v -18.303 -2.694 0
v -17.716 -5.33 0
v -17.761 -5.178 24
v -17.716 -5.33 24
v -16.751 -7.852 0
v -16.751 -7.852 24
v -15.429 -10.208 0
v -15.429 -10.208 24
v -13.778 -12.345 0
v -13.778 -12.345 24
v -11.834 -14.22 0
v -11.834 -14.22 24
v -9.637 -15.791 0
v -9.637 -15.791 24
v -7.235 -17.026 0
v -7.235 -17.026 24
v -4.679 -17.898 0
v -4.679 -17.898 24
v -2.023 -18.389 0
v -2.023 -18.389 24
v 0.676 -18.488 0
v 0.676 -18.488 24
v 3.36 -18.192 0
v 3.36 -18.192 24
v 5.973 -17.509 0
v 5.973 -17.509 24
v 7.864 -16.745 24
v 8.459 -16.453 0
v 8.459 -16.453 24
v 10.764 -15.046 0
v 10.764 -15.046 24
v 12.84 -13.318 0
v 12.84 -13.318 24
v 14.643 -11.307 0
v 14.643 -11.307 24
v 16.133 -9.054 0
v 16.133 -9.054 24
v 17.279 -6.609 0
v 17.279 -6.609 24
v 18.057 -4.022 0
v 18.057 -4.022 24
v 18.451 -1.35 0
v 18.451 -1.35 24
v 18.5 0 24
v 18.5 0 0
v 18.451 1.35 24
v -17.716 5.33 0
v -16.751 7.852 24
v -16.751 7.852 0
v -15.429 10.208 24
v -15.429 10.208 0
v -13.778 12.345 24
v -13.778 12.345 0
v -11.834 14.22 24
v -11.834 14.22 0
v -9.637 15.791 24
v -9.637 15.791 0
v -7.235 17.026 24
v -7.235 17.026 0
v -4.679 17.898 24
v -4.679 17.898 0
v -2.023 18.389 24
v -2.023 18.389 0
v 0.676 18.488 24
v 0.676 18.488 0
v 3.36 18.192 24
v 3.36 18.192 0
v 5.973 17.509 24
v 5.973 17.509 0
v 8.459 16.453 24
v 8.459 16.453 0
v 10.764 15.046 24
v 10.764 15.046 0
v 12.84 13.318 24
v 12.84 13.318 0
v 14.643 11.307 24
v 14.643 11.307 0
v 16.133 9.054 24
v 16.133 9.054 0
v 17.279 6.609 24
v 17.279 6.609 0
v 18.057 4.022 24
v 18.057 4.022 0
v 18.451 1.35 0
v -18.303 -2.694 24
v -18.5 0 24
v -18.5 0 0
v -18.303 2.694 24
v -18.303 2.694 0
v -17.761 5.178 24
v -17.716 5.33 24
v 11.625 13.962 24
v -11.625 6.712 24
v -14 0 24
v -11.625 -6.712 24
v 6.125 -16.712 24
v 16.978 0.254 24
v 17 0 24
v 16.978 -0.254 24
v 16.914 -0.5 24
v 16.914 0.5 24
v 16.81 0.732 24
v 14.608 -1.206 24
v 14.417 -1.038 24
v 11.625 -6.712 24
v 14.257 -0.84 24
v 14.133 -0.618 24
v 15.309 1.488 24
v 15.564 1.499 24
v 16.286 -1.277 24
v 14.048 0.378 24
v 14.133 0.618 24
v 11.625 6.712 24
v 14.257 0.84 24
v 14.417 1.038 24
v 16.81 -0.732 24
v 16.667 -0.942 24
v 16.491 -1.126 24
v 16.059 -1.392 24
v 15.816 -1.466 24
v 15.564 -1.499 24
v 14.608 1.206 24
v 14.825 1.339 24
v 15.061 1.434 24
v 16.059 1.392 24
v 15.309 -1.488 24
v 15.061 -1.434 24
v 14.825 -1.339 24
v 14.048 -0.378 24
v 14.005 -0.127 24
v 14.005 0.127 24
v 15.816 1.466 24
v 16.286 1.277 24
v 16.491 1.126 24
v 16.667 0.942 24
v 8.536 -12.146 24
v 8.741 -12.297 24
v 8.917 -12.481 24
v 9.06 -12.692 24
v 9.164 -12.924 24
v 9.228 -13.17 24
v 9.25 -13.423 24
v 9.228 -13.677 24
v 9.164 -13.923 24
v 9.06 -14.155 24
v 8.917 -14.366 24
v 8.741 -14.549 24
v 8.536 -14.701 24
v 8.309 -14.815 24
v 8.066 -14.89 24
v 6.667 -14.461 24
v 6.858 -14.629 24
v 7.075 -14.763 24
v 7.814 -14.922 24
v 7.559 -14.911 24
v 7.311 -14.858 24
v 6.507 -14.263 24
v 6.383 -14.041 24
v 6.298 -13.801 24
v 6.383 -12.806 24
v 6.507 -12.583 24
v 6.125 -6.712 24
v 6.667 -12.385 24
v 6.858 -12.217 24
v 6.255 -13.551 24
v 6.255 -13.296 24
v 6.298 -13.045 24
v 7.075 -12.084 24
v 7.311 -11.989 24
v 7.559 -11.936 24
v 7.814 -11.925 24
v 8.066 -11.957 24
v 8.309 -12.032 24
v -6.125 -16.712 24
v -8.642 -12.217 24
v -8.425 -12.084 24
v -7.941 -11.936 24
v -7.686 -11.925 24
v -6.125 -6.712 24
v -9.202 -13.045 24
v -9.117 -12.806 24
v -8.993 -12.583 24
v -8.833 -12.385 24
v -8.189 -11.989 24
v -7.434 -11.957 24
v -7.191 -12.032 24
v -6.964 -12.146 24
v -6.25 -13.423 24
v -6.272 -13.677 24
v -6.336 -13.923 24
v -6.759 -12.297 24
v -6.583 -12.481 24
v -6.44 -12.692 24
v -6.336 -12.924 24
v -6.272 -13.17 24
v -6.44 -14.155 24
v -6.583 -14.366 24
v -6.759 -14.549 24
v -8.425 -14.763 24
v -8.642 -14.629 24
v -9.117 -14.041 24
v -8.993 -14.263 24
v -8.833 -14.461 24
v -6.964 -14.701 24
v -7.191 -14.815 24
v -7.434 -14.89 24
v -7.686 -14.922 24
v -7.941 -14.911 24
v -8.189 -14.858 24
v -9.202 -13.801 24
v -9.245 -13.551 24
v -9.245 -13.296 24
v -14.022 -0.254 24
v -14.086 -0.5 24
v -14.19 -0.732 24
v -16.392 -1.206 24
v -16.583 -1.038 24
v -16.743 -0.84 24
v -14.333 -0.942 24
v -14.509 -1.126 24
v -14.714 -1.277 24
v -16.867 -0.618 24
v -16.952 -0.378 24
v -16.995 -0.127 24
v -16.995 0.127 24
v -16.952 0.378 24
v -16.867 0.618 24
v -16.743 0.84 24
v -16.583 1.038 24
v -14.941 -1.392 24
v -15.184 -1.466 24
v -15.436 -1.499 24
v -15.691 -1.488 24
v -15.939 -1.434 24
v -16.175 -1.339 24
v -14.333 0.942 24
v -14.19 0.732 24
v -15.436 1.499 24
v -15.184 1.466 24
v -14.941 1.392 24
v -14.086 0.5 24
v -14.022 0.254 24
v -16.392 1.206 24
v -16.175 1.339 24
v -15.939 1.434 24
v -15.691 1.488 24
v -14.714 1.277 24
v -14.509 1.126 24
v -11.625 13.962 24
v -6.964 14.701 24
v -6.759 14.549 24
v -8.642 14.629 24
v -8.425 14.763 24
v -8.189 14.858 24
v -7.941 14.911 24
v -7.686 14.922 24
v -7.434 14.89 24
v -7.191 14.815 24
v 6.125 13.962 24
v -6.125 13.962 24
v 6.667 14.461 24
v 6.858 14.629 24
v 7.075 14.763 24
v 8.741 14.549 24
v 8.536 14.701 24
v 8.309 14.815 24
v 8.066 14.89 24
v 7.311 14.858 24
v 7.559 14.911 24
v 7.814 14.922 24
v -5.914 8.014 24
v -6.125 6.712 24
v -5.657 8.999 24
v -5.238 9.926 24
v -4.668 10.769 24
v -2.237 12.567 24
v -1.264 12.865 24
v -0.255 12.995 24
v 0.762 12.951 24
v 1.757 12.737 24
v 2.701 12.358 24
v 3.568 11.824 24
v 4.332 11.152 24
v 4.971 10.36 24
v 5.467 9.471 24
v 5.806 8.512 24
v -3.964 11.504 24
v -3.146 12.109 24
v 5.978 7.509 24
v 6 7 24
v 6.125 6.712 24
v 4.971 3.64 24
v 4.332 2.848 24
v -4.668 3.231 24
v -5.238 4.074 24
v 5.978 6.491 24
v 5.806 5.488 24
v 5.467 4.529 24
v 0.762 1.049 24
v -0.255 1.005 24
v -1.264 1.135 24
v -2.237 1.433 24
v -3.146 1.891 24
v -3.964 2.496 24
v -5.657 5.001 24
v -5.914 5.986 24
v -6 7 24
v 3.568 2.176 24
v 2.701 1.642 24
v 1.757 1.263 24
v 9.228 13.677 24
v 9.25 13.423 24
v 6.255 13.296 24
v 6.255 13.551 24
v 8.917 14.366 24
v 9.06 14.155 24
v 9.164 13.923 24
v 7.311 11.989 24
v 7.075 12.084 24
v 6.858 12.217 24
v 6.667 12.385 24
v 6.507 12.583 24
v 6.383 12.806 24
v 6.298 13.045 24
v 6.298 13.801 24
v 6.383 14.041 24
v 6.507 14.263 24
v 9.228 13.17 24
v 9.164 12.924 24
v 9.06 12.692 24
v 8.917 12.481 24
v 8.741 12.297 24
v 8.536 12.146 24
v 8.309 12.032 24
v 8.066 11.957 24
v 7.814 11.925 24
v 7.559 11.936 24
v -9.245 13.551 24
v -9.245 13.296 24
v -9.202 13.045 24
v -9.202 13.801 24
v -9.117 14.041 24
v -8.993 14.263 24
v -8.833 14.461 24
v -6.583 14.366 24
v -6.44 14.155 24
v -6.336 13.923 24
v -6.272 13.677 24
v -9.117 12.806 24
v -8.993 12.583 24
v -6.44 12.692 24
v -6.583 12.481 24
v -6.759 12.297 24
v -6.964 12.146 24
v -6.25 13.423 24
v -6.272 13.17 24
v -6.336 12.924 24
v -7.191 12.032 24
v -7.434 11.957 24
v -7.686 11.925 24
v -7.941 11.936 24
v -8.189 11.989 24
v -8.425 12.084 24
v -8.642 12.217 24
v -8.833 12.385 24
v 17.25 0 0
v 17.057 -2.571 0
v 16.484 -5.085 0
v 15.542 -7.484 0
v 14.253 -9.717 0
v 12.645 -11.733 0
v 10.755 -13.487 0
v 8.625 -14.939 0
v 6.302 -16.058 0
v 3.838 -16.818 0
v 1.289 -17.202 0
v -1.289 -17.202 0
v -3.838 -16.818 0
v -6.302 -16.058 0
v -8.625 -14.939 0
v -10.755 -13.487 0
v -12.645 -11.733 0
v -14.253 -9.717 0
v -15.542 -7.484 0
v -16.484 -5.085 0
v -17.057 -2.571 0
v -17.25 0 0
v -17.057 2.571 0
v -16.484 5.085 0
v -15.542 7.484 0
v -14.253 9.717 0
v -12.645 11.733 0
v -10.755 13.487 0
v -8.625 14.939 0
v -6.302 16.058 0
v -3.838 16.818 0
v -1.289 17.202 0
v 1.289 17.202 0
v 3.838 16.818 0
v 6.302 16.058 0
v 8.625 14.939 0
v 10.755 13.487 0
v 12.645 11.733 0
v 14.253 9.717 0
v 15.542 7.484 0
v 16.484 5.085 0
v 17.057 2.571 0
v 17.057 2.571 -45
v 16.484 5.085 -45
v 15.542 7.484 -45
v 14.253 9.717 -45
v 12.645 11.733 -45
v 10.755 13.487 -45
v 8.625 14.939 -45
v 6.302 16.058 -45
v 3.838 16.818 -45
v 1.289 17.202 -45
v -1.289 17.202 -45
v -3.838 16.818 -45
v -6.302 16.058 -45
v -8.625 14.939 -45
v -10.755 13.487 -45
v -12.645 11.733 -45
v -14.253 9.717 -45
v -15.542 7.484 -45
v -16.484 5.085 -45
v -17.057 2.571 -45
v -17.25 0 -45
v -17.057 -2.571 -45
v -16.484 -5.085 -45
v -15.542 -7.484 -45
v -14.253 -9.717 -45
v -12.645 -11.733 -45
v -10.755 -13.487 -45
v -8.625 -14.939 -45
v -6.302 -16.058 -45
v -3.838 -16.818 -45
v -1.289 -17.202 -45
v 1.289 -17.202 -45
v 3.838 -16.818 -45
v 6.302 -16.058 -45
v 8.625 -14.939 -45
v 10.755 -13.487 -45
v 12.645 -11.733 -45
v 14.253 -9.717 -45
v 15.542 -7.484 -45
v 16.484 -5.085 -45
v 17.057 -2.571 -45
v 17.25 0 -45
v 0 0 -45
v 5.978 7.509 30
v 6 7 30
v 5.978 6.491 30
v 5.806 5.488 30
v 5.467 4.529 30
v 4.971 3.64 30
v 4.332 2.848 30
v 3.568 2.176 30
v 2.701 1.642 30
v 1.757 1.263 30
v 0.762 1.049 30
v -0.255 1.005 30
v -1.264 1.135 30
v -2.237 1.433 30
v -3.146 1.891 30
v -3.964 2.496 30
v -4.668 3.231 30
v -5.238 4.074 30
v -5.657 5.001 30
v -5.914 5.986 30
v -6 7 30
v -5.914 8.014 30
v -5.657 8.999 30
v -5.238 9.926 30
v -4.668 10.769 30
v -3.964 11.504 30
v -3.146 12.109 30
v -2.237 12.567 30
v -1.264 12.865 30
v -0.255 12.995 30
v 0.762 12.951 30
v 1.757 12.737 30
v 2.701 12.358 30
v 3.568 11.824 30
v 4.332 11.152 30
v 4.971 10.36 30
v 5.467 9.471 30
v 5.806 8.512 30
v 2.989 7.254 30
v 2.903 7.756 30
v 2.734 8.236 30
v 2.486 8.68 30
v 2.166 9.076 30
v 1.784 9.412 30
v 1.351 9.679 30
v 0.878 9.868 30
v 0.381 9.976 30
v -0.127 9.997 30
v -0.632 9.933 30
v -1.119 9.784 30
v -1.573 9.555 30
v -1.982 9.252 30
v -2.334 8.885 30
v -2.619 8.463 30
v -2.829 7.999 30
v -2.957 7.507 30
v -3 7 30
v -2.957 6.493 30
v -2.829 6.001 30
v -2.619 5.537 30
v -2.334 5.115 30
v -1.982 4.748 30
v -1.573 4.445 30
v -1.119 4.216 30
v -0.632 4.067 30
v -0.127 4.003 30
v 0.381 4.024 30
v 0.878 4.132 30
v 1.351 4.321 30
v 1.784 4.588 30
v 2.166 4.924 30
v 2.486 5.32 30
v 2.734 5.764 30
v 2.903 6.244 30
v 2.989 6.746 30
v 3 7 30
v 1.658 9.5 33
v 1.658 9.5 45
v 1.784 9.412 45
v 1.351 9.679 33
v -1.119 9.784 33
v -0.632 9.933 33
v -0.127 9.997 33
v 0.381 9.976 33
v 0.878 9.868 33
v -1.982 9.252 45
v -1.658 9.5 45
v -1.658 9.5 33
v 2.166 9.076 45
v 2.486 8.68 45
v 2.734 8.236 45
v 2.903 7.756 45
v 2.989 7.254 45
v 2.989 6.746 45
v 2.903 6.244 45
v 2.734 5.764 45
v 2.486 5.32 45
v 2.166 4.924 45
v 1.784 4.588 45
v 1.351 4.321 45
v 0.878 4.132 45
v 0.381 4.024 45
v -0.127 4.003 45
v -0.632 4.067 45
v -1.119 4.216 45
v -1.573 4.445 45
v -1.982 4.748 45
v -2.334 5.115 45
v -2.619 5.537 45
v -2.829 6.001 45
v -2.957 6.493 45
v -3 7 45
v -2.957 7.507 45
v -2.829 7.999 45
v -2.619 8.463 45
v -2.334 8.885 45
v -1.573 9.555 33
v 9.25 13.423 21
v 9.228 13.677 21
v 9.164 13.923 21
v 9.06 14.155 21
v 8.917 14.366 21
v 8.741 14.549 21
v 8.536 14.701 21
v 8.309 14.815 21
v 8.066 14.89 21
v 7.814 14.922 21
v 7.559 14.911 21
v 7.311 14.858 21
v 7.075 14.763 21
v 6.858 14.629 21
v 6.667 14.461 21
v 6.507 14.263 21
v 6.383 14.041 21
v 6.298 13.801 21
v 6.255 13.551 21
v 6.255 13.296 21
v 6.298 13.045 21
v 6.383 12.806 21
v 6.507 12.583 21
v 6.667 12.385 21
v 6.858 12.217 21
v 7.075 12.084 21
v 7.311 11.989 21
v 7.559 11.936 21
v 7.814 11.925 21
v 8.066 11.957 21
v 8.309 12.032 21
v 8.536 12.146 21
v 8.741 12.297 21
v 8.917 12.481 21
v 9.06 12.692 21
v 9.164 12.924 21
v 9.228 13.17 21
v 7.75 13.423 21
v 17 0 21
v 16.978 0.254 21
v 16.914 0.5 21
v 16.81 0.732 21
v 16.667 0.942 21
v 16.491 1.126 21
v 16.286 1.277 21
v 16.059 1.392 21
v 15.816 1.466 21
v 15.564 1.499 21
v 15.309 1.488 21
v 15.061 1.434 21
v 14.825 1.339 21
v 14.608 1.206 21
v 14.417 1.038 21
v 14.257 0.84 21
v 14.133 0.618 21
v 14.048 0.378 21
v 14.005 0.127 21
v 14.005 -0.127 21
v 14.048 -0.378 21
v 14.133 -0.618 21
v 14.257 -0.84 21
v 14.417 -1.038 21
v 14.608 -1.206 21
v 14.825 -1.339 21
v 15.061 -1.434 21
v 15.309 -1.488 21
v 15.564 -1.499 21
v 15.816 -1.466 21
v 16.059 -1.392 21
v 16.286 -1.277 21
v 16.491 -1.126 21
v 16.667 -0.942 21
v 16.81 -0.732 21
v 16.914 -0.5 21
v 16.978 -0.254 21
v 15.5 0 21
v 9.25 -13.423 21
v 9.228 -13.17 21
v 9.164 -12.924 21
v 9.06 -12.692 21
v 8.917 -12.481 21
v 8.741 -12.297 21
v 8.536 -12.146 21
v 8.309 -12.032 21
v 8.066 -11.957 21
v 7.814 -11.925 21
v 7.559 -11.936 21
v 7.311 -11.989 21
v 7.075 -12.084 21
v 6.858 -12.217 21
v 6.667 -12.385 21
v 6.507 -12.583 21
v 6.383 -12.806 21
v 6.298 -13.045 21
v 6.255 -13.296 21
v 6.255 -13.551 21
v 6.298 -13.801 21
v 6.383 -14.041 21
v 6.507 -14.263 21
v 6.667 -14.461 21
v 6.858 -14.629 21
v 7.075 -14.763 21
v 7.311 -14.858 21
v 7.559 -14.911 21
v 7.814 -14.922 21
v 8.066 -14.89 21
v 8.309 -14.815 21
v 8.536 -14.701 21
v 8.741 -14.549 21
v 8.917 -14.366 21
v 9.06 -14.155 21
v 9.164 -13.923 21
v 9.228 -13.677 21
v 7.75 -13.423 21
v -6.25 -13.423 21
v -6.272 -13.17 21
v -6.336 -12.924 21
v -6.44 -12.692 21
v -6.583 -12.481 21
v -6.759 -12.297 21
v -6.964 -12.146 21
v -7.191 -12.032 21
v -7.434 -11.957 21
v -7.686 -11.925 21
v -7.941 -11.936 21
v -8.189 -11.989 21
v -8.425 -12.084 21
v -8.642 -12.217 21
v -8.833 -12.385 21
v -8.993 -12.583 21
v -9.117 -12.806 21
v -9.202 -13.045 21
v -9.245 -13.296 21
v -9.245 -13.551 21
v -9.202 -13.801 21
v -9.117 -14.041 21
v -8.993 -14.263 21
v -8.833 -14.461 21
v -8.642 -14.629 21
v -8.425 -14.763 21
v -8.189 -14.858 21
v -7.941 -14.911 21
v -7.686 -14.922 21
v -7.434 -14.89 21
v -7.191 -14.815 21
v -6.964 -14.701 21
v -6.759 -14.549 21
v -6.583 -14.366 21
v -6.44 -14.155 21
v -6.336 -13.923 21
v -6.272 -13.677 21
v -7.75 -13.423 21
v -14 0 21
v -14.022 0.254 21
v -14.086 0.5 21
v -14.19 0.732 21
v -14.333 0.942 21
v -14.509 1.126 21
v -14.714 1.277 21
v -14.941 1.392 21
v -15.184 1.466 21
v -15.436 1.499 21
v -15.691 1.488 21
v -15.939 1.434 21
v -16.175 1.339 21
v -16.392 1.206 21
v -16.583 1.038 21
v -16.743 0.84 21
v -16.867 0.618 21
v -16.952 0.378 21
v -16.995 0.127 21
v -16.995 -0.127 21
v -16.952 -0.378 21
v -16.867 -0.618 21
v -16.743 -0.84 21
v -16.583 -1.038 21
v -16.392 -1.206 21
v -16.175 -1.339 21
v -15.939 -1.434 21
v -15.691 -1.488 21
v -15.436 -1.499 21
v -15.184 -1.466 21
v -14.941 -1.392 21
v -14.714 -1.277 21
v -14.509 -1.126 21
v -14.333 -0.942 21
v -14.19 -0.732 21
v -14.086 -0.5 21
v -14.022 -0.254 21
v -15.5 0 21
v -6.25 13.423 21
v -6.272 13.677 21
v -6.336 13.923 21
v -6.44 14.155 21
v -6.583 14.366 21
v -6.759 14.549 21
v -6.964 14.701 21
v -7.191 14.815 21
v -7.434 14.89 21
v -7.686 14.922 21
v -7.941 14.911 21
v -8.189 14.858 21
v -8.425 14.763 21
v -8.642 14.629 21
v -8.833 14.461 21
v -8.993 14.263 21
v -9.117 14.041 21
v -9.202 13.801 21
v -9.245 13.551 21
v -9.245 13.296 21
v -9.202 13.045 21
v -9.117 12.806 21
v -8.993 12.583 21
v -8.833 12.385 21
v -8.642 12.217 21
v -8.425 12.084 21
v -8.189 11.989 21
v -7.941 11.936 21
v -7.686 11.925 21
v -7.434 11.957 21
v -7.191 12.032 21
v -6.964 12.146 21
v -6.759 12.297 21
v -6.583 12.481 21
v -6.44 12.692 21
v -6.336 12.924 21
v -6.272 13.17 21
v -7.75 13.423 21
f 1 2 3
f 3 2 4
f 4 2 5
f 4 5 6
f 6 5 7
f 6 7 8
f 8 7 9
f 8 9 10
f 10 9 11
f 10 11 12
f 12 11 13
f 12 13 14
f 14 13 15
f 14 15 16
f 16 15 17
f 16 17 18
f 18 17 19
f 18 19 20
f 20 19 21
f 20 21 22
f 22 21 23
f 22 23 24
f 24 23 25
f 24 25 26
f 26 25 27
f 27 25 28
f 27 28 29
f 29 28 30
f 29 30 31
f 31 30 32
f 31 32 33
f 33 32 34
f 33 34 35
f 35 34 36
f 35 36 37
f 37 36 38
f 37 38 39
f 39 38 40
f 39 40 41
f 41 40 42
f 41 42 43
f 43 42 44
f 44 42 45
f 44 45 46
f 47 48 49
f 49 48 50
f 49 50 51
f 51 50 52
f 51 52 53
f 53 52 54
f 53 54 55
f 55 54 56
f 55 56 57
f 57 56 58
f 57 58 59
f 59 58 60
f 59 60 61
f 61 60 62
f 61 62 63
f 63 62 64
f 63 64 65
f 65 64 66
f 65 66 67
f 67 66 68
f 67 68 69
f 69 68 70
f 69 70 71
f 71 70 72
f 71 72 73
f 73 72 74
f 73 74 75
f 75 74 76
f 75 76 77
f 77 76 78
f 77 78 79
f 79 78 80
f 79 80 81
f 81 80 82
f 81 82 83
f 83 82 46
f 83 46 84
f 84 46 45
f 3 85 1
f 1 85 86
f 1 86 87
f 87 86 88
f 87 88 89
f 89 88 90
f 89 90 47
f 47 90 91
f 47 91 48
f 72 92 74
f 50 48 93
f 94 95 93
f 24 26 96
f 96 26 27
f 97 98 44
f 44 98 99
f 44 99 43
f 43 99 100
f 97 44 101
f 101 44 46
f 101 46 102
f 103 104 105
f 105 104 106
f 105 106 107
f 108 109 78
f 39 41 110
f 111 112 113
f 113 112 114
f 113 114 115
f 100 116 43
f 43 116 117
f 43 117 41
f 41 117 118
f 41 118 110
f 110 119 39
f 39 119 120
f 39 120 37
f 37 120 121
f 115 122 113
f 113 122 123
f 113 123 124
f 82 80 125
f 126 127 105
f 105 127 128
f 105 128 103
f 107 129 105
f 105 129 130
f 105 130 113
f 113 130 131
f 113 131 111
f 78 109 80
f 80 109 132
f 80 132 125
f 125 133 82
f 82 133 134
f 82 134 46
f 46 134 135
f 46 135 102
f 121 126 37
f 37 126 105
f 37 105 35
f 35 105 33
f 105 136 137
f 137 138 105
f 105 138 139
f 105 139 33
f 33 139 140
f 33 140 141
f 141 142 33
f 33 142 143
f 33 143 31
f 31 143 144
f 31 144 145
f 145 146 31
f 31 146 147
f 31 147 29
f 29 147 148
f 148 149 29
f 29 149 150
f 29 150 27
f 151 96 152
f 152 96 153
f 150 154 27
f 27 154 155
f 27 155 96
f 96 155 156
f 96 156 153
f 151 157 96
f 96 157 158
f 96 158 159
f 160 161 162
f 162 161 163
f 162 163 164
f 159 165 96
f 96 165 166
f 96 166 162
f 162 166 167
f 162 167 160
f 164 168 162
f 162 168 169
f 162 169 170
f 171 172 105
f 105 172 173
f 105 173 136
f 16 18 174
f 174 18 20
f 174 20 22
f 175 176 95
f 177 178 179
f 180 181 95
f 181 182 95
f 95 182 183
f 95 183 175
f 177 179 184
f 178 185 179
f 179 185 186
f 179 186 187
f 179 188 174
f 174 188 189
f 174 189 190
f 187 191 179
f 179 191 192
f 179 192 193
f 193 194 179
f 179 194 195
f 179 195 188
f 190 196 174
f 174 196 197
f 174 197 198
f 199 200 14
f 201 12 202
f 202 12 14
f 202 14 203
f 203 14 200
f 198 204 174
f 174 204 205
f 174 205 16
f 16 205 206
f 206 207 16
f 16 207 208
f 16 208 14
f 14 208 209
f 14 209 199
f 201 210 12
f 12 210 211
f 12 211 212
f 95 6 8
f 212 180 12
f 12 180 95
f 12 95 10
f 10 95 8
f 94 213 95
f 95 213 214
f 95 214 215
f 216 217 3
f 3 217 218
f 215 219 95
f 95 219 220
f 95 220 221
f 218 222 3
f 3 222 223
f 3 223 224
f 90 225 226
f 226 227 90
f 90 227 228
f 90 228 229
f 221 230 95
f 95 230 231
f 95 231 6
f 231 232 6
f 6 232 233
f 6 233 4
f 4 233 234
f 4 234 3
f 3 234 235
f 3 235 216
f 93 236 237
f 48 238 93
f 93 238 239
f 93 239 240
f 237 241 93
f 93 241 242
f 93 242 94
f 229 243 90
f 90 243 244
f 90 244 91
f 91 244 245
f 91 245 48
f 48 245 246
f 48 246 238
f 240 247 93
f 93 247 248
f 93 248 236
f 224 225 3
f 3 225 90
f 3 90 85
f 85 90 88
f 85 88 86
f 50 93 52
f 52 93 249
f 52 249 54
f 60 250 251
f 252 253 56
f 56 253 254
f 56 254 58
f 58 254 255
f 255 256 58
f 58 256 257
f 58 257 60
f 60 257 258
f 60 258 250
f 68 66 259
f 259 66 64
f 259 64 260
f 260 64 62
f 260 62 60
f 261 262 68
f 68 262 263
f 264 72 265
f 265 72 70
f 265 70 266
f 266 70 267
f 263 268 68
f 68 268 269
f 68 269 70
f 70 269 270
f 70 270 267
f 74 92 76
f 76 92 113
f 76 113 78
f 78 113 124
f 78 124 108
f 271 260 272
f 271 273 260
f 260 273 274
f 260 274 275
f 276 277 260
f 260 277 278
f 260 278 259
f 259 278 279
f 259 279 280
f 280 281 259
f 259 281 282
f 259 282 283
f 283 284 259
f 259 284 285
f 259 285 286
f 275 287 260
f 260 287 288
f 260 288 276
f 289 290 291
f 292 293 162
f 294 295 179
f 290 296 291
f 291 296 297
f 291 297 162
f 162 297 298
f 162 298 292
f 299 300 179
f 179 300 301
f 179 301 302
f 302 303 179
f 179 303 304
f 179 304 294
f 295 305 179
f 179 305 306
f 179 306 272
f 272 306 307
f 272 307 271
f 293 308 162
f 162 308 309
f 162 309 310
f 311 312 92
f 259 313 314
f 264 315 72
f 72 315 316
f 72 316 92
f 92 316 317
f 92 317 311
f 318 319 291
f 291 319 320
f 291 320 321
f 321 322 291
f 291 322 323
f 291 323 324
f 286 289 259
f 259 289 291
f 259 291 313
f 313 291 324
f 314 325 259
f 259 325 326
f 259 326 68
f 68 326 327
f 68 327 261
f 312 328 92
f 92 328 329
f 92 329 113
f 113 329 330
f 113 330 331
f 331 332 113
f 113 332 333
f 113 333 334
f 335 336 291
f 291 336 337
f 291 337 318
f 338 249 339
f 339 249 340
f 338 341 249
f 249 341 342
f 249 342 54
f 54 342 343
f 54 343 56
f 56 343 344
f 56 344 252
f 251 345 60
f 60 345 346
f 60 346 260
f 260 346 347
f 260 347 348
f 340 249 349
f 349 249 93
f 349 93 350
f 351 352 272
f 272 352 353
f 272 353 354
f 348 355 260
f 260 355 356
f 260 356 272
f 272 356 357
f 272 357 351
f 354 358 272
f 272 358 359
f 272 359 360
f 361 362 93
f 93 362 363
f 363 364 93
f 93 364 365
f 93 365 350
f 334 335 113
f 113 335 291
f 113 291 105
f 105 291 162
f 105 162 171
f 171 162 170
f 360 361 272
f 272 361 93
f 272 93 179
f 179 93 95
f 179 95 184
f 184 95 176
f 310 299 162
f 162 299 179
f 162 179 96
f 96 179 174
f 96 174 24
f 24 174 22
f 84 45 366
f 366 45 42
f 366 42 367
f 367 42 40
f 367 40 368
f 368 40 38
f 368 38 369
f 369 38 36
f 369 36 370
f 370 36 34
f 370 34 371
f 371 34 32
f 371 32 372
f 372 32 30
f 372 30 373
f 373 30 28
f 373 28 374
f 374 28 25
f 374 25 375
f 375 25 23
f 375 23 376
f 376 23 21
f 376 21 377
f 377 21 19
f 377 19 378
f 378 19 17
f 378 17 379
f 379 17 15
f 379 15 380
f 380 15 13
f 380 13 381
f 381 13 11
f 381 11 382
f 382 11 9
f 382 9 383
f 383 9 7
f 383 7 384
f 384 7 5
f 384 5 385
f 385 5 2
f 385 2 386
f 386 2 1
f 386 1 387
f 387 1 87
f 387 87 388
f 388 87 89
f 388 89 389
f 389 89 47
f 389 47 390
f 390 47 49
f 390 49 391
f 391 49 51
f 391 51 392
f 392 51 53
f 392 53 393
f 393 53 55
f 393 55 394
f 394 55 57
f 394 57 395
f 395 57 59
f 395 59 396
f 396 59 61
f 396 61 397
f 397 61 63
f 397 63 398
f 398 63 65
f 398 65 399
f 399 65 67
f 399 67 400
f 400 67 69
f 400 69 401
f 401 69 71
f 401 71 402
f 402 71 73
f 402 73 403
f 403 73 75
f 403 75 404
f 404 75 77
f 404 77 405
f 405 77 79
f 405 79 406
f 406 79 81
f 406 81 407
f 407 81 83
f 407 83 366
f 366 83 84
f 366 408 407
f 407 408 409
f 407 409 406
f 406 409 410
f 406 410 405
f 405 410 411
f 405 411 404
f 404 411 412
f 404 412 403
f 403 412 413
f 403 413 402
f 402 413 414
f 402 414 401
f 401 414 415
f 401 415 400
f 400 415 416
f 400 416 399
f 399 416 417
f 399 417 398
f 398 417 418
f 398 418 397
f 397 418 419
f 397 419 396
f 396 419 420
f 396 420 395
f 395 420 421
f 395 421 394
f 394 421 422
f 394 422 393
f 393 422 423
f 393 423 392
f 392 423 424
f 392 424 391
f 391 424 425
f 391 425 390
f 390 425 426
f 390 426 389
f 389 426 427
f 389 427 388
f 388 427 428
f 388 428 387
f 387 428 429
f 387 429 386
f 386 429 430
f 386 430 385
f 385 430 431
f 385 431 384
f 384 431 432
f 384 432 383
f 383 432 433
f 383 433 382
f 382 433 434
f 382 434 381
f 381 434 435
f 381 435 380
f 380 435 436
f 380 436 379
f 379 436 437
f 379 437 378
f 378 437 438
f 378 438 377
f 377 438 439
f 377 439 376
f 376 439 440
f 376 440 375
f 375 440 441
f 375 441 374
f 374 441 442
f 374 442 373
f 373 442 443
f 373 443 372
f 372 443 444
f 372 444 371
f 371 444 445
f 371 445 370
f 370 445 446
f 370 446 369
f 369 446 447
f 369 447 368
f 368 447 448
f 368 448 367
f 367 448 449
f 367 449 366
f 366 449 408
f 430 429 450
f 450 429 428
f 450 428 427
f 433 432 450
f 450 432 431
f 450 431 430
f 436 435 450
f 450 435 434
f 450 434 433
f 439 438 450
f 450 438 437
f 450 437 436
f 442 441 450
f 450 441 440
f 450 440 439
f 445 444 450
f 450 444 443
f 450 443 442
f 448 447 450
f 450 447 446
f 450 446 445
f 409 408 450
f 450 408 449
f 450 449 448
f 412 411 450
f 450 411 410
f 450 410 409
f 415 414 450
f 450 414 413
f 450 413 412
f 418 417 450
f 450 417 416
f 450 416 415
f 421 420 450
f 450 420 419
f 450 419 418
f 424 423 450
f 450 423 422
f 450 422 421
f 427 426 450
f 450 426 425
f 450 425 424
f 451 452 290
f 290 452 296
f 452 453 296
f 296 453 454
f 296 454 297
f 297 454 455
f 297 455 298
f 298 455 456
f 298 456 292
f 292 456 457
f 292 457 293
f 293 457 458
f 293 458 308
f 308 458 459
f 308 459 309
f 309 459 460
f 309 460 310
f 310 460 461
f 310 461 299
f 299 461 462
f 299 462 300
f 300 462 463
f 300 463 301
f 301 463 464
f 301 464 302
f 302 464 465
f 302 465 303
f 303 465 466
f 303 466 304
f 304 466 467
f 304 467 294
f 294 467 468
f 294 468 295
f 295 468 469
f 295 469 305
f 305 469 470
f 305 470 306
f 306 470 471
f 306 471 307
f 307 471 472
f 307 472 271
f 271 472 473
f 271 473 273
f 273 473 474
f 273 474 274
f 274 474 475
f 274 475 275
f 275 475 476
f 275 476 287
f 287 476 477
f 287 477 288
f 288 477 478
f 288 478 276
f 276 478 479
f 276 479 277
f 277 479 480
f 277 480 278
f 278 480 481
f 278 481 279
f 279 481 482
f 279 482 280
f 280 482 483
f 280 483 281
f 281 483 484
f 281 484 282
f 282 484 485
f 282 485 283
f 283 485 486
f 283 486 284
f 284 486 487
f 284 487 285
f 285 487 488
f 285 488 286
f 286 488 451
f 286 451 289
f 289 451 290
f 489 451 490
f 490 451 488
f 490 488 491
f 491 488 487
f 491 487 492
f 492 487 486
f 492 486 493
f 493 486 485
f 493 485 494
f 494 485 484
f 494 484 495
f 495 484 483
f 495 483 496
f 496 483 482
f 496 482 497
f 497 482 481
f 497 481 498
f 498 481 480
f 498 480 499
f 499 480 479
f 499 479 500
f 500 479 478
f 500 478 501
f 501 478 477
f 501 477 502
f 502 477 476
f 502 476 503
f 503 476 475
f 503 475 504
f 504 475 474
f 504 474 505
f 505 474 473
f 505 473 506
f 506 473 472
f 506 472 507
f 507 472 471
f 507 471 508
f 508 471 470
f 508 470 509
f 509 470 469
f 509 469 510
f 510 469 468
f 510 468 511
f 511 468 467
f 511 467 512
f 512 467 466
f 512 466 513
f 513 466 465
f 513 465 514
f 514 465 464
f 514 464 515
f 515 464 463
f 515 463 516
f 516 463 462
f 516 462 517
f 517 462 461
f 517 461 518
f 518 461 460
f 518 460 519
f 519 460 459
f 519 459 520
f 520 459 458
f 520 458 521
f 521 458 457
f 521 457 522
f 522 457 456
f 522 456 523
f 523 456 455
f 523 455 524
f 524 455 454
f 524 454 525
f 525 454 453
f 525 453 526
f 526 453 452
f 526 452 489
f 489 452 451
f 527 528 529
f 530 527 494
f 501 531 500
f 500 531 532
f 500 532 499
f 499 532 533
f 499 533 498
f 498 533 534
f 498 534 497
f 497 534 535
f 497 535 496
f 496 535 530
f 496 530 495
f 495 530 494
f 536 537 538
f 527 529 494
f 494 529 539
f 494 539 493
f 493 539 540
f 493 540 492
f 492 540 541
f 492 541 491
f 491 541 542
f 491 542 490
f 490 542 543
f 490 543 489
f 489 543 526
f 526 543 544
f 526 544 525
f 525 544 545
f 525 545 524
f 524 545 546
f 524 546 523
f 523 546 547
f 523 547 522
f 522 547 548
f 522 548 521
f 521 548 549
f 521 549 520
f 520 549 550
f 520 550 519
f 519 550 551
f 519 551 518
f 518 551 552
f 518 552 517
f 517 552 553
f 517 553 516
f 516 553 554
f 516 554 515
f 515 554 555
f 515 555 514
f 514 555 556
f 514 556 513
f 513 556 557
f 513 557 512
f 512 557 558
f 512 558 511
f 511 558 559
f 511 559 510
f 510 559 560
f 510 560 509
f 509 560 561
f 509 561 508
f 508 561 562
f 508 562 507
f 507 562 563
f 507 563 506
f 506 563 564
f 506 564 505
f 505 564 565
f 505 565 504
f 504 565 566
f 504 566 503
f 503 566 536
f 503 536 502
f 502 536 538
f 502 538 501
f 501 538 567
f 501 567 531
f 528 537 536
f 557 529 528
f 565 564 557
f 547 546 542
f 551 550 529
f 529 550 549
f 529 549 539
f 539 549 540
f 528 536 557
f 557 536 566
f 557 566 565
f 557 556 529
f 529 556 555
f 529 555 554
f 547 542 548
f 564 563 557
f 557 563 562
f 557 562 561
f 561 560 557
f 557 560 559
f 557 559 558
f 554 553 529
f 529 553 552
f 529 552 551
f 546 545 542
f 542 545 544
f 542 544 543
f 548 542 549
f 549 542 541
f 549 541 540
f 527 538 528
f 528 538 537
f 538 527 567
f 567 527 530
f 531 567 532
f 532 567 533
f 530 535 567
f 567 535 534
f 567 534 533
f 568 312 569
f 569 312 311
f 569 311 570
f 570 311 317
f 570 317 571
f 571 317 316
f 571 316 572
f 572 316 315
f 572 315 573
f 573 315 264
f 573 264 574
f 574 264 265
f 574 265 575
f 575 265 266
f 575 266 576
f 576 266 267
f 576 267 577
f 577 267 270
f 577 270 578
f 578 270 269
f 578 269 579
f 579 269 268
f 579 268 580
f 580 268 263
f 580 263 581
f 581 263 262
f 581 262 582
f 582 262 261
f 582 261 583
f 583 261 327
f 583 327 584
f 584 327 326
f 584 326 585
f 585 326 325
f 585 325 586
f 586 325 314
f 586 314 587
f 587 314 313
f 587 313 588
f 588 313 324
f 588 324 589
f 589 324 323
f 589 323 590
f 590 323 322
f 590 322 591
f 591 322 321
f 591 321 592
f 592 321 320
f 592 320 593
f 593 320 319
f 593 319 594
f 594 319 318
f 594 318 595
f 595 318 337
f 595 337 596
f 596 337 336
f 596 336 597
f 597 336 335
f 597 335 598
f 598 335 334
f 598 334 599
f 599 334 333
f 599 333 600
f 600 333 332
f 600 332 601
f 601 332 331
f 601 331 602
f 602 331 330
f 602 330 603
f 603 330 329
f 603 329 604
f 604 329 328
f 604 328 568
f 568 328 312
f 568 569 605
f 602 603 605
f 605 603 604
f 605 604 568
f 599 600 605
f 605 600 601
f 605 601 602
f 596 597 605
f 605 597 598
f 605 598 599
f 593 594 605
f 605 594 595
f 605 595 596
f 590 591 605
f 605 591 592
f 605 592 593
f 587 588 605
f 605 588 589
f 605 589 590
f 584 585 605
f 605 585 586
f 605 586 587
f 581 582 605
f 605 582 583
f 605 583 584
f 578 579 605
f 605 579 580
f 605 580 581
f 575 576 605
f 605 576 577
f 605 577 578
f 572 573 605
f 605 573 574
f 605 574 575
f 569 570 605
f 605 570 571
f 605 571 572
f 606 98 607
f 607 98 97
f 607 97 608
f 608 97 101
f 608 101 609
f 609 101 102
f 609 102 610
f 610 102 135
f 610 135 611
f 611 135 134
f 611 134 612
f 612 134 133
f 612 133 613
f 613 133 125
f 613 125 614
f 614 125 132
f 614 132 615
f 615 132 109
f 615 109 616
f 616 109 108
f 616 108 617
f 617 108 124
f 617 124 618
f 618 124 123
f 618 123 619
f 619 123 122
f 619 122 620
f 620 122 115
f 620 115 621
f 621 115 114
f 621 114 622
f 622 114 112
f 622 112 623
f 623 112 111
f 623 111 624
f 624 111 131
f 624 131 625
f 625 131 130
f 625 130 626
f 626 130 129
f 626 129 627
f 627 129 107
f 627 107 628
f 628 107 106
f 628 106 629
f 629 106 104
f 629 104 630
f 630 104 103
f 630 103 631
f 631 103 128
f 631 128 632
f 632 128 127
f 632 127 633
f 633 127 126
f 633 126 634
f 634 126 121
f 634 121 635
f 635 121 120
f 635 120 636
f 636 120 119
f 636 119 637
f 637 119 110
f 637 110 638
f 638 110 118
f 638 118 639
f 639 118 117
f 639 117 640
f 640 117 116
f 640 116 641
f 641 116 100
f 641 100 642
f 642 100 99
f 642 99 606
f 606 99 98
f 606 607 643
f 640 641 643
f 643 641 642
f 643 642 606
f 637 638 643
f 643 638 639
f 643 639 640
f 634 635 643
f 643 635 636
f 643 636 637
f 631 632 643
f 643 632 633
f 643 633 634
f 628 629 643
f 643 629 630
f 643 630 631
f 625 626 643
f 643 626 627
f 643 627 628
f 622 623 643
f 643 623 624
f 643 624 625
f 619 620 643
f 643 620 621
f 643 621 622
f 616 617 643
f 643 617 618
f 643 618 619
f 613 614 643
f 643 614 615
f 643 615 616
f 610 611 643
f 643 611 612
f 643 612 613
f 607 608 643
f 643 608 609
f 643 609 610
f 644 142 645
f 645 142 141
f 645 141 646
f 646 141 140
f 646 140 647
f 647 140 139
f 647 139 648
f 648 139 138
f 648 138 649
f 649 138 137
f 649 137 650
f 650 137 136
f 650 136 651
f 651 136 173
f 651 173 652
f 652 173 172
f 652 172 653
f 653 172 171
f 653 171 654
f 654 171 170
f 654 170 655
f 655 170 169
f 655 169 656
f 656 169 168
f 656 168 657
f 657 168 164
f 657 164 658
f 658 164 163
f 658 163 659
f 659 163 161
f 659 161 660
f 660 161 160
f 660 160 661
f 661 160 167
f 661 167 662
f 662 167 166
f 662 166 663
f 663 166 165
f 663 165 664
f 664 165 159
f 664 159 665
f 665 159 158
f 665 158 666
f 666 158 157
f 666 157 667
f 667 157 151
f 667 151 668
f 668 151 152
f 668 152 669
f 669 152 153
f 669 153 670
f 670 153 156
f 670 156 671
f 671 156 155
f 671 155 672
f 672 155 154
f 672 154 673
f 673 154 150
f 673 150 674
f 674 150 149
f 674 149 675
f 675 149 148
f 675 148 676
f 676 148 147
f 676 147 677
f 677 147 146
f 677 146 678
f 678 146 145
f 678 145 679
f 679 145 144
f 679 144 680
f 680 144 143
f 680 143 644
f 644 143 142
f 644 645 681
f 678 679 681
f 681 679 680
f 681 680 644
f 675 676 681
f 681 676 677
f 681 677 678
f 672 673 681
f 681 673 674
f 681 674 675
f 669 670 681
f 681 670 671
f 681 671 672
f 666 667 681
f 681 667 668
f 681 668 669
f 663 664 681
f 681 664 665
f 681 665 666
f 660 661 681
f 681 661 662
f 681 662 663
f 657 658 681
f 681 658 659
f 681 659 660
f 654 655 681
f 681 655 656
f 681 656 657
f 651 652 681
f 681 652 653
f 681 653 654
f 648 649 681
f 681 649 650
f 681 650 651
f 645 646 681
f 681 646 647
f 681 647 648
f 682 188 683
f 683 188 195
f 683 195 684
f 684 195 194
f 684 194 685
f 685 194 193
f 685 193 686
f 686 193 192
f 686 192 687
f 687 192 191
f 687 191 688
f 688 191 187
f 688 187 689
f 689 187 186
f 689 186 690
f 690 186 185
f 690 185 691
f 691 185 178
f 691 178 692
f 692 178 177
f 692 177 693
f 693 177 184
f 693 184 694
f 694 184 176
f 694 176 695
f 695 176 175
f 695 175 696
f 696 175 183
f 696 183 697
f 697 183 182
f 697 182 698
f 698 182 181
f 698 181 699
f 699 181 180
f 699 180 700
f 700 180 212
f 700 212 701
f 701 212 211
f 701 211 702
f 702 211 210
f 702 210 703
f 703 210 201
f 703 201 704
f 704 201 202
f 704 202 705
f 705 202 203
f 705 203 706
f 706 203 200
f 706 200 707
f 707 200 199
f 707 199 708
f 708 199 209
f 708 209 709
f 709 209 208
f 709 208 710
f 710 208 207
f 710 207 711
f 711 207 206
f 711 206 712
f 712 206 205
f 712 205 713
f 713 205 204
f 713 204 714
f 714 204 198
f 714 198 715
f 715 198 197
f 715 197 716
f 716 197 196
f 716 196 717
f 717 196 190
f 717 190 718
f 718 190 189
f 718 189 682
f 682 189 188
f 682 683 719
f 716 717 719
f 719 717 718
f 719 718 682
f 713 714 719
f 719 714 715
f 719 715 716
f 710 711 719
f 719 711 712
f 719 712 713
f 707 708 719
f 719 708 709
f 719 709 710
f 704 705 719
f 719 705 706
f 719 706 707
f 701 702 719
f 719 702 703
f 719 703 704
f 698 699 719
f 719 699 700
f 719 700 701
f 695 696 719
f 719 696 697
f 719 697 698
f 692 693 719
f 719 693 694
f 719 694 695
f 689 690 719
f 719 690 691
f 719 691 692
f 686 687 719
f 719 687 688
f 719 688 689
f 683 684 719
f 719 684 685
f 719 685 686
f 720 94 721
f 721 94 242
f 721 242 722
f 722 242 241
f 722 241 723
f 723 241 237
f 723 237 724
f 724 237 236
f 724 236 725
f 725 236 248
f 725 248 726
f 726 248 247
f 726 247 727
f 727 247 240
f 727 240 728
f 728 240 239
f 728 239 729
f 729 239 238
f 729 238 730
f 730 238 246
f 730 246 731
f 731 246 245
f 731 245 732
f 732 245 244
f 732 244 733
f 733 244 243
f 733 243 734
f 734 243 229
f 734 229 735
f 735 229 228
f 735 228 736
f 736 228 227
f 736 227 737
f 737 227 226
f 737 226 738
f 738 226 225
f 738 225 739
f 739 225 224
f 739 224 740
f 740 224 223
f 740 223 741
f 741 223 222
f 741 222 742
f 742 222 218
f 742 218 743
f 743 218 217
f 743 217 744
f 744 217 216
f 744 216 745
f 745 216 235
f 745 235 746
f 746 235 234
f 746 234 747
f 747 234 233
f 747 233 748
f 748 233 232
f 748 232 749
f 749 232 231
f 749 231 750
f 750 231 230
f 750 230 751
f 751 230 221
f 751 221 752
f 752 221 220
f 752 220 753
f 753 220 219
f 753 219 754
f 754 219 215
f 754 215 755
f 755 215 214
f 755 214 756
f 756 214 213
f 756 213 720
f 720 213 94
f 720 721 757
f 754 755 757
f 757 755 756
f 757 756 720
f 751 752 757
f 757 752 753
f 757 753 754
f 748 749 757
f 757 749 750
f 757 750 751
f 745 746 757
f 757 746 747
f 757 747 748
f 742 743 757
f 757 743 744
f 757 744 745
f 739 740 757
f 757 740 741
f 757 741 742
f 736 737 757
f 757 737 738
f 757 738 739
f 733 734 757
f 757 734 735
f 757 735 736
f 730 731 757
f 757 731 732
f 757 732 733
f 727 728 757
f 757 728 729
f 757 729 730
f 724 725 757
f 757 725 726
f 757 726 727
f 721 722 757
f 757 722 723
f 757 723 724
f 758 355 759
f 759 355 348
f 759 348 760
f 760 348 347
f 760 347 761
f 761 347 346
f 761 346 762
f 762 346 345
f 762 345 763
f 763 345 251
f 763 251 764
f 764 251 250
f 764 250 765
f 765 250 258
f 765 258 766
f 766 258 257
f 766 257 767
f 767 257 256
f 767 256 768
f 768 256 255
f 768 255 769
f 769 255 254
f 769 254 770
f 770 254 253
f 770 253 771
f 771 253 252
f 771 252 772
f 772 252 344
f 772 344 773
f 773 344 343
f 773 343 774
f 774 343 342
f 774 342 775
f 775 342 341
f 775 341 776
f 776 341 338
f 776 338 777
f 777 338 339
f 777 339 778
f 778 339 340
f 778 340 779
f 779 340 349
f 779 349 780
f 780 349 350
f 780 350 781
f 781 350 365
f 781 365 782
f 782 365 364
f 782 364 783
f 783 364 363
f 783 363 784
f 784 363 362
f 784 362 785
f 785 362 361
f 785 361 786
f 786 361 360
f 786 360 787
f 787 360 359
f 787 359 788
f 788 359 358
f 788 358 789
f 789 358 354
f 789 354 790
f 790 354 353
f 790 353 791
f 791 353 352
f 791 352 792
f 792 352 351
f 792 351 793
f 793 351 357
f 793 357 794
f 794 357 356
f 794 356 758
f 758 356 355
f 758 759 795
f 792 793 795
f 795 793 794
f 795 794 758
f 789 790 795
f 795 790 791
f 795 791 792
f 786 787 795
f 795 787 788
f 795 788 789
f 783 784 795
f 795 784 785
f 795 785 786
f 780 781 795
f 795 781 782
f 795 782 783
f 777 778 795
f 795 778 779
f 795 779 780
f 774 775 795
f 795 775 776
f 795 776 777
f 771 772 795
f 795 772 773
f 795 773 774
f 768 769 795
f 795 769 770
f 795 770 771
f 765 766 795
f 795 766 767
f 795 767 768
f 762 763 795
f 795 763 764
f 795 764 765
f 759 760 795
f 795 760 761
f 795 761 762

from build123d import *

# Parameters (mm, degrees)
SKETCH1_R           = 18.5
BOSS_EXTRUDE1_DEPTH = 24
SKETCH2_R           = 17.25
BOSS_EXTRUDE2_DEPTH = 45
SKETCH3_R           = 6
BOSS_EXTRUDE3_DEPTH = 6
SKETCH4_R           = 3
BOSS_EXTRUDE4_DEPTH = 15
CUT_EXTRUDE1_START  = -12
CUT_EXTRUDE1_DEPTH  = 12
SKETCH6_R           = 1.5
CUT_EXTRUDE2_DEPTH  = 3


with BuildPart() as part:
    # Sketch1 → Boss-Extrude1 (new body)
    with BuildSketch(Plane.XY):
        Circle(SKETCH1_R)
    extrude(amount=BOSS_EXTRUDE1_DEPTH)

    # Sketch2 → Boss-Extrude2 (add)
    with BuildSketch(Plane(origin=(0, 0, 0), x_dir=(-1, 0, 0), z_dir=(0, 0, -1))):
        with Locations(Location((0, 0, 0), (0, 0, 180))):
            Circle(SKETCH2_R)
    extrude(amount=BOSS_EXTRUDE2_DEPTH)

    # Sketch3 → Boss-Extrude3 (add)
    with BuildSketch(Plane.XY.offset(24)):
        with Locations((0, 7)):
            Circle(SKETCH3_R)
    extrude(amount=BOSS_EXTRUDE3_DEPTH)

    # Sketch4 → Boss-Extrude4 (add)
    with BuildSketch(Plane.XY.offset(30)):
        with Locations((0, 7)):
            Circle(SKETCH4_R)
    extrude(amount=BOSS_EXTRUDE4_DEPTH)

    # Sketch5 → Cut-Extrude1 (cut)
    with BuildSketch(Plane.XY.offset(45).offset(CUT_EXTRUDE1_START)):
        with BuildLine():
            ThreePointArc((1.658312395, 9.5), (0, 10), (-1.658312395, 9.5))
            Line((-1.658312395, 9.5), (0, 9.5))
            Line((0, 9.5), (1.658312395, 9.5))
        make_face()
    extrude(amount=CUT_EXTRUDE1_DEPTH, mode=Mode.SUBTRACT)

    # Sketch6 → Cut-Extrude2 (cut)
    with BuildSketch(Plane.XY.offset(24)):
        with Locations((7.75, 13.423393759)):
            Circle(SKETCH6_R)
        with Locations((15.5, 0)):
            Circle(SKETCH6_R)
        with Locations((7.75, -13.423393759)):
            Circle(SKETCH6_R)
        with Locations((-7.75, -13.423393759)):
            Circle(SKETCH6_R)
        with Locations((-15.5, 0)):
            Circle(SKETCH6_R)
        with Locations((-7.75, 13.423393759)):
            Circle(SKETCH6_R)
    extrude(amount=-CUT_EXTRUDE2_DEPTH, mode=Mode.SUBTRACT)


solid = part.part
